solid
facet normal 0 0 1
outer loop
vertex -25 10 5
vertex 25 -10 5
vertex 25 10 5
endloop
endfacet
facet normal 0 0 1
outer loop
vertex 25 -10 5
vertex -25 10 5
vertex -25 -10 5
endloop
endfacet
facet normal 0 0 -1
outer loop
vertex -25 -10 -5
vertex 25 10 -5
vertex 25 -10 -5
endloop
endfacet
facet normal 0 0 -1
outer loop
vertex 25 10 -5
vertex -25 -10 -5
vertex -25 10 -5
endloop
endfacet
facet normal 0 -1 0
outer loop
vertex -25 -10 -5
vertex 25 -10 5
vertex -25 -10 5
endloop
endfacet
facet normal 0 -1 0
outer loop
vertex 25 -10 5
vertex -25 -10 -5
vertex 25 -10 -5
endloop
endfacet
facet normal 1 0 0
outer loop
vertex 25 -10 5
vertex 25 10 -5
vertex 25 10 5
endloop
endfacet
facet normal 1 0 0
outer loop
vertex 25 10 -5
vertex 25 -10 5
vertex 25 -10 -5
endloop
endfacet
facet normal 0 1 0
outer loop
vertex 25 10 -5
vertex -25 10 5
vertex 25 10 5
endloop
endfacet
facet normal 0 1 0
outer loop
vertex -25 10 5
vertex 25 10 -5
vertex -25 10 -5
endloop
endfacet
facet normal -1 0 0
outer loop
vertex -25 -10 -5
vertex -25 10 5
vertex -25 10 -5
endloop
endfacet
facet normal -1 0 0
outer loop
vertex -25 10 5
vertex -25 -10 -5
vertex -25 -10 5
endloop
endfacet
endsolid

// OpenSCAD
// Define dimensions for the rectangular block
block_length = 50;  // Length of the block
block_width = 20;   // Width of the block
block_height = 10;  // Height of the block

// Generate the rectangular block
module rectangular_block() {
    cube([block_length, block_width, block_height], center = true);
}

// Assemble the model
rectangular_block();
